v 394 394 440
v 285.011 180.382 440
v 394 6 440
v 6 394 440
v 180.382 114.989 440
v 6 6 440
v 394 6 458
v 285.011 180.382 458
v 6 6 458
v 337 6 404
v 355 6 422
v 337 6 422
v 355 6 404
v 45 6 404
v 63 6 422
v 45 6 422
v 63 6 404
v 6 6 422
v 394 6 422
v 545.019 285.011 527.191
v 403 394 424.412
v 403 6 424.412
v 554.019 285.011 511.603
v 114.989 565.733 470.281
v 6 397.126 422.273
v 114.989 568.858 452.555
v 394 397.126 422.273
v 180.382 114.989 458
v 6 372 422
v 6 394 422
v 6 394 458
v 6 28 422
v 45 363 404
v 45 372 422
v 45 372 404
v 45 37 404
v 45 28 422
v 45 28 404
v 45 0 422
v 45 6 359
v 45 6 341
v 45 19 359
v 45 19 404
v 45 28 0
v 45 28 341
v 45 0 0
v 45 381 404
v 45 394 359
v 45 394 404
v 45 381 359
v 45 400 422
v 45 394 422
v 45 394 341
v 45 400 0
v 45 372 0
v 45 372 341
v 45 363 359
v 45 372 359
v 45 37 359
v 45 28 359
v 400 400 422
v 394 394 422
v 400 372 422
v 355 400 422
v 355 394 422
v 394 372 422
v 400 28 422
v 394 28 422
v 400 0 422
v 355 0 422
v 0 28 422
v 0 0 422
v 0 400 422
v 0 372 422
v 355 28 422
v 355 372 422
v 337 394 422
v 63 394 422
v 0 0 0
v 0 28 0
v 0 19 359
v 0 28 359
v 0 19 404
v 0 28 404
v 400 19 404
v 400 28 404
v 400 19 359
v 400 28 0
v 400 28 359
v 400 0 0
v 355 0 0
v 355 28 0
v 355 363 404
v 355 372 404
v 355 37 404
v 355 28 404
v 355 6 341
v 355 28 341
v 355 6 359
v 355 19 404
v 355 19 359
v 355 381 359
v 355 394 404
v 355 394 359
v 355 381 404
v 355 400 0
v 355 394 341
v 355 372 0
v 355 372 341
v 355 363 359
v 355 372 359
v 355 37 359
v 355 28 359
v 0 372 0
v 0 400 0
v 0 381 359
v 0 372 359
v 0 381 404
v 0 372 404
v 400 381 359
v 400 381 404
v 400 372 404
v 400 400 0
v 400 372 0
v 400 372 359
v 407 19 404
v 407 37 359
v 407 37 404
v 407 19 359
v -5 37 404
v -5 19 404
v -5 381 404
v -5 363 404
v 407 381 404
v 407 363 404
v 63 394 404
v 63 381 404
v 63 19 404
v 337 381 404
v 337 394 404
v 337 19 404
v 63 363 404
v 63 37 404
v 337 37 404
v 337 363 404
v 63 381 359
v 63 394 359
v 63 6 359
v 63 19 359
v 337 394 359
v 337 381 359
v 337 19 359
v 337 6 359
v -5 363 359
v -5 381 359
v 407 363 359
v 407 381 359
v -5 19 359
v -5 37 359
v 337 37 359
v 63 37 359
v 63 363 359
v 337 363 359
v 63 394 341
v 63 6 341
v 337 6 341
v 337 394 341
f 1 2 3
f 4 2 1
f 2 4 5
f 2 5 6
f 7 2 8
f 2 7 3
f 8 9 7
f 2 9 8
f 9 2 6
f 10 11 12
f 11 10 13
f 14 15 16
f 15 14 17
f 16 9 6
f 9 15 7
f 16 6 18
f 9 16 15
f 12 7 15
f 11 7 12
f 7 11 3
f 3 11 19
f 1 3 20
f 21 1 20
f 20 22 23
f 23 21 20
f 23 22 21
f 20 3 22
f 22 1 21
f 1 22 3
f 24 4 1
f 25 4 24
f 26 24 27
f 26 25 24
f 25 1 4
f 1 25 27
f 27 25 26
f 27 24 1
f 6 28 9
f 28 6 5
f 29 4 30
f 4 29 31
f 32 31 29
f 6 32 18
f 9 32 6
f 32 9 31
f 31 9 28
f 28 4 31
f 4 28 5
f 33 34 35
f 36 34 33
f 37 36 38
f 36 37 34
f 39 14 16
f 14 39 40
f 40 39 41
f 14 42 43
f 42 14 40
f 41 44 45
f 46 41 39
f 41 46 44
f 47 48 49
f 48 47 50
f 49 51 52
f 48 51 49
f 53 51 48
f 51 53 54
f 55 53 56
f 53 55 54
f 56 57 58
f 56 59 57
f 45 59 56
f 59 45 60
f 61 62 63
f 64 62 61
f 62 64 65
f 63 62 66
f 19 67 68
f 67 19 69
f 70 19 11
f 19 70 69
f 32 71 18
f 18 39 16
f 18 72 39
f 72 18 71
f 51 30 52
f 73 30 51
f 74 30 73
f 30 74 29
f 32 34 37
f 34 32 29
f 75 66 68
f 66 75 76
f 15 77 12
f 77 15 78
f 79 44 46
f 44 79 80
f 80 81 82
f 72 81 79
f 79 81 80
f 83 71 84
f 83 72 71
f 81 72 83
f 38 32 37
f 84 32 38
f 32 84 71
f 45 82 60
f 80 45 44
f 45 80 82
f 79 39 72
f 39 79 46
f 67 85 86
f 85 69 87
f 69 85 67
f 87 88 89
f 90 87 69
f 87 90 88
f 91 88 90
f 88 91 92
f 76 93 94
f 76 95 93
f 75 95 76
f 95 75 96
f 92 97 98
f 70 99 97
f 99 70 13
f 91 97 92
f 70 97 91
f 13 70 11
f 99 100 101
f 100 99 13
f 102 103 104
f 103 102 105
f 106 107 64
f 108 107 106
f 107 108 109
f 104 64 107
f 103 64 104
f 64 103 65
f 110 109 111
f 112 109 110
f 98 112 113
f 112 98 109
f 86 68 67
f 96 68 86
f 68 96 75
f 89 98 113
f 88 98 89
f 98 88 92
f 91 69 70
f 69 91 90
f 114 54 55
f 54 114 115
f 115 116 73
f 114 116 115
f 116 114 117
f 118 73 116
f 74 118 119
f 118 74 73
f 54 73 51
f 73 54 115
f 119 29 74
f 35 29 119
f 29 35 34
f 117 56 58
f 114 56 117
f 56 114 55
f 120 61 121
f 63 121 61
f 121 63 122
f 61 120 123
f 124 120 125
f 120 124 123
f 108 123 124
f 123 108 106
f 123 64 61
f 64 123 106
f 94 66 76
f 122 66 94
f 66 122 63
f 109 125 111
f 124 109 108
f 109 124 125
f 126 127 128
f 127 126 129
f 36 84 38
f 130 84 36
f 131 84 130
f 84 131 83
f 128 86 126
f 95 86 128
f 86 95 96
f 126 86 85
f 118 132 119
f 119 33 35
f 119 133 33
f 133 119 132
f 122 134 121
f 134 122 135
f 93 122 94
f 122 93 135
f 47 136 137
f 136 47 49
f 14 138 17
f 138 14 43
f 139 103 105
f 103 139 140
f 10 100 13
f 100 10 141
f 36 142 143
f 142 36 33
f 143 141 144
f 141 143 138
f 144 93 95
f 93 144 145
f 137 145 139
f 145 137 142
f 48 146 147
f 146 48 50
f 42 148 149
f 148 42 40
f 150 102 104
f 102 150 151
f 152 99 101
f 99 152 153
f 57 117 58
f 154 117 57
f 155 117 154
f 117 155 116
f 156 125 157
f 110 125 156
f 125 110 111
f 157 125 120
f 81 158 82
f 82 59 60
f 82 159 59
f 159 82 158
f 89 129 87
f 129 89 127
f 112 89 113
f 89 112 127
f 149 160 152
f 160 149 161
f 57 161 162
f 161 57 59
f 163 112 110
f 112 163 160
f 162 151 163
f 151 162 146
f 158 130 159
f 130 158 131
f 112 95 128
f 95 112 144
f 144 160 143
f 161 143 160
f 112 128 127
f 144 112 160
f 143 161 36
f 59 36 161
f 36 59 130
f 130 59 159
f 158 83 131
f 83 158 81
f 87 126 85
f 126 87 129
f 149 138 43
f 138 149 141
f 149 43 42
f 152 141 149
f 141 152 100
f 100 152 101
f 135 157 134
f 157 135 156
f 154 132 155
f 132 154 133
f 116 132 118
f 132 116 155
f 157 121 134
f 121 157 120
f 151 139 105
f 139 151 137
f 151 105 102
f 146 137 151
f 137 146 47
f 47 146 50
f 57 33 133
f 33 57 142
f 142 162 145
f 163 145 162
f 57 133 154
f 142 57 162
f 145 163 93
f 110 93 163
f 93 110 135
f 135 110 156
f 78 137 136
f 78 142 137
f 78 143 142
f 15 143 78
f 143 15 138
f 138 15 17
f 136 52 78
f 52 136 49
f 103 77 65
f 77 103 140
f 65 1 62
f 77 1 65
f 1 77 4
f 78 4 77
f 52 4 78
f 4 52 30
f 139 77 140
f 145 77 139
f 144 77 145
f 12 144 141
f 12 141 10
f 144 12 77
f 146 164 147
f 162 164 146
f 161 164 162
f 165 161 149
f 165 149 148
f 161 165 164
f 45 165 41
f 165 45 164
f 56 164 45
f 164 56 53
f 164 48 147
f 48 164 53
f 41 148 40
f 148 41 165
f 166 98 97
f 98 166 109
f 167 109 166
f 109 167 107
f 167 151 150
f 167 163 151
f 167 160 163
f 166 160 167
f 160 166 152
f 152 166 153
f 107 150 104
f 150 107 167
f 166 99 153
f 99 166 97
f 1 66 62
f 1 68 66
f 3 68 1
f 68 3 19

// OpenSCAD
d1 = 18;
d2 = 28;

al = 422;
ab = 45;
ad = d2;

// legs
module a()
  cube([ab, ad, al]);
  
a();

translate([400-ab, 0, 0])
  a();

translate([0, 400-ad, 0])
  a();

translate([0, 400-ad, 0])
translate([400-ab, 0, 0])
  a();

bl = 412;
bb = 45;
bd = d1;

// High lat
module b()
  cube([bl, bd, bb]);

translate([-(al-bl)/2, ad-(bd/2), al-cd-bb])
  b();

translate([-(al-bl)/2, 400-ad-(bd/2), al-cd-bb])
  b();

cl = 388;
cd = d1;
cb = d1;

module c()
  cube([cd, cl, cb]);

translate([ab, (400-cl)/2, al-cd])
  c();

translate([400-ab-cd, (400-cl)/2, al-cd])
  c();

translate([ab, (400-cl)/2, al-cd-bb-cd])
  c();

translate([400-ab-cd, (400-cl)/2, al-cd-bb-cd])
  c();


dw = 388;
dh = 388;
dd = 18;

alpha = atan(1/1.6);
lz = cos(alpha)*dw;
oz = lz * sin(alpha);
az = oz / tan(alpha);

translate([(400-dw)/2, (400-dw)/2, al])
  cube([dw, dh, dd]);

module flap()
  hull()
  polyhedron(
  [
    [0, 0, 0],
    [dw, 0, 0],
    [az, oz, 0],
    [0, 0, dd],
    [dw, 0, dd],
    [az, oz, dd],
  ],
  [
    [0, 1, 2],
    [0, 1, 4, 3],
    [1, 2, 5, 4],
    [2, 0, 3, 5],
    [3, 4, 5]
  ],
  10
  );
  
//flap();
  
 translate([(400-dw)/2, (400-dw)/2, al+dd]) {
  flap();
  //rotate([180, 0, 0]) flap();
  
  //translate([dw,0,0]) rotate([0,0,90]) flap();
  //translate([dw,0,0]) rotate([180, 0, 90]) flap();
  translate([dw,0,0]) rotate([150, 0, 90]) flap();
 
  //translate([dw,dw,0]) rotate([0,0,180]) flap();
  translate([dw,dw,0]) rotate([170, 0, 180]) flap();
 
  translate([0,dw,0]) rotate([0,0,270]) flap();
  //translate([0,dw,0]) rotate([180, 0, 270]) flap();
 }
